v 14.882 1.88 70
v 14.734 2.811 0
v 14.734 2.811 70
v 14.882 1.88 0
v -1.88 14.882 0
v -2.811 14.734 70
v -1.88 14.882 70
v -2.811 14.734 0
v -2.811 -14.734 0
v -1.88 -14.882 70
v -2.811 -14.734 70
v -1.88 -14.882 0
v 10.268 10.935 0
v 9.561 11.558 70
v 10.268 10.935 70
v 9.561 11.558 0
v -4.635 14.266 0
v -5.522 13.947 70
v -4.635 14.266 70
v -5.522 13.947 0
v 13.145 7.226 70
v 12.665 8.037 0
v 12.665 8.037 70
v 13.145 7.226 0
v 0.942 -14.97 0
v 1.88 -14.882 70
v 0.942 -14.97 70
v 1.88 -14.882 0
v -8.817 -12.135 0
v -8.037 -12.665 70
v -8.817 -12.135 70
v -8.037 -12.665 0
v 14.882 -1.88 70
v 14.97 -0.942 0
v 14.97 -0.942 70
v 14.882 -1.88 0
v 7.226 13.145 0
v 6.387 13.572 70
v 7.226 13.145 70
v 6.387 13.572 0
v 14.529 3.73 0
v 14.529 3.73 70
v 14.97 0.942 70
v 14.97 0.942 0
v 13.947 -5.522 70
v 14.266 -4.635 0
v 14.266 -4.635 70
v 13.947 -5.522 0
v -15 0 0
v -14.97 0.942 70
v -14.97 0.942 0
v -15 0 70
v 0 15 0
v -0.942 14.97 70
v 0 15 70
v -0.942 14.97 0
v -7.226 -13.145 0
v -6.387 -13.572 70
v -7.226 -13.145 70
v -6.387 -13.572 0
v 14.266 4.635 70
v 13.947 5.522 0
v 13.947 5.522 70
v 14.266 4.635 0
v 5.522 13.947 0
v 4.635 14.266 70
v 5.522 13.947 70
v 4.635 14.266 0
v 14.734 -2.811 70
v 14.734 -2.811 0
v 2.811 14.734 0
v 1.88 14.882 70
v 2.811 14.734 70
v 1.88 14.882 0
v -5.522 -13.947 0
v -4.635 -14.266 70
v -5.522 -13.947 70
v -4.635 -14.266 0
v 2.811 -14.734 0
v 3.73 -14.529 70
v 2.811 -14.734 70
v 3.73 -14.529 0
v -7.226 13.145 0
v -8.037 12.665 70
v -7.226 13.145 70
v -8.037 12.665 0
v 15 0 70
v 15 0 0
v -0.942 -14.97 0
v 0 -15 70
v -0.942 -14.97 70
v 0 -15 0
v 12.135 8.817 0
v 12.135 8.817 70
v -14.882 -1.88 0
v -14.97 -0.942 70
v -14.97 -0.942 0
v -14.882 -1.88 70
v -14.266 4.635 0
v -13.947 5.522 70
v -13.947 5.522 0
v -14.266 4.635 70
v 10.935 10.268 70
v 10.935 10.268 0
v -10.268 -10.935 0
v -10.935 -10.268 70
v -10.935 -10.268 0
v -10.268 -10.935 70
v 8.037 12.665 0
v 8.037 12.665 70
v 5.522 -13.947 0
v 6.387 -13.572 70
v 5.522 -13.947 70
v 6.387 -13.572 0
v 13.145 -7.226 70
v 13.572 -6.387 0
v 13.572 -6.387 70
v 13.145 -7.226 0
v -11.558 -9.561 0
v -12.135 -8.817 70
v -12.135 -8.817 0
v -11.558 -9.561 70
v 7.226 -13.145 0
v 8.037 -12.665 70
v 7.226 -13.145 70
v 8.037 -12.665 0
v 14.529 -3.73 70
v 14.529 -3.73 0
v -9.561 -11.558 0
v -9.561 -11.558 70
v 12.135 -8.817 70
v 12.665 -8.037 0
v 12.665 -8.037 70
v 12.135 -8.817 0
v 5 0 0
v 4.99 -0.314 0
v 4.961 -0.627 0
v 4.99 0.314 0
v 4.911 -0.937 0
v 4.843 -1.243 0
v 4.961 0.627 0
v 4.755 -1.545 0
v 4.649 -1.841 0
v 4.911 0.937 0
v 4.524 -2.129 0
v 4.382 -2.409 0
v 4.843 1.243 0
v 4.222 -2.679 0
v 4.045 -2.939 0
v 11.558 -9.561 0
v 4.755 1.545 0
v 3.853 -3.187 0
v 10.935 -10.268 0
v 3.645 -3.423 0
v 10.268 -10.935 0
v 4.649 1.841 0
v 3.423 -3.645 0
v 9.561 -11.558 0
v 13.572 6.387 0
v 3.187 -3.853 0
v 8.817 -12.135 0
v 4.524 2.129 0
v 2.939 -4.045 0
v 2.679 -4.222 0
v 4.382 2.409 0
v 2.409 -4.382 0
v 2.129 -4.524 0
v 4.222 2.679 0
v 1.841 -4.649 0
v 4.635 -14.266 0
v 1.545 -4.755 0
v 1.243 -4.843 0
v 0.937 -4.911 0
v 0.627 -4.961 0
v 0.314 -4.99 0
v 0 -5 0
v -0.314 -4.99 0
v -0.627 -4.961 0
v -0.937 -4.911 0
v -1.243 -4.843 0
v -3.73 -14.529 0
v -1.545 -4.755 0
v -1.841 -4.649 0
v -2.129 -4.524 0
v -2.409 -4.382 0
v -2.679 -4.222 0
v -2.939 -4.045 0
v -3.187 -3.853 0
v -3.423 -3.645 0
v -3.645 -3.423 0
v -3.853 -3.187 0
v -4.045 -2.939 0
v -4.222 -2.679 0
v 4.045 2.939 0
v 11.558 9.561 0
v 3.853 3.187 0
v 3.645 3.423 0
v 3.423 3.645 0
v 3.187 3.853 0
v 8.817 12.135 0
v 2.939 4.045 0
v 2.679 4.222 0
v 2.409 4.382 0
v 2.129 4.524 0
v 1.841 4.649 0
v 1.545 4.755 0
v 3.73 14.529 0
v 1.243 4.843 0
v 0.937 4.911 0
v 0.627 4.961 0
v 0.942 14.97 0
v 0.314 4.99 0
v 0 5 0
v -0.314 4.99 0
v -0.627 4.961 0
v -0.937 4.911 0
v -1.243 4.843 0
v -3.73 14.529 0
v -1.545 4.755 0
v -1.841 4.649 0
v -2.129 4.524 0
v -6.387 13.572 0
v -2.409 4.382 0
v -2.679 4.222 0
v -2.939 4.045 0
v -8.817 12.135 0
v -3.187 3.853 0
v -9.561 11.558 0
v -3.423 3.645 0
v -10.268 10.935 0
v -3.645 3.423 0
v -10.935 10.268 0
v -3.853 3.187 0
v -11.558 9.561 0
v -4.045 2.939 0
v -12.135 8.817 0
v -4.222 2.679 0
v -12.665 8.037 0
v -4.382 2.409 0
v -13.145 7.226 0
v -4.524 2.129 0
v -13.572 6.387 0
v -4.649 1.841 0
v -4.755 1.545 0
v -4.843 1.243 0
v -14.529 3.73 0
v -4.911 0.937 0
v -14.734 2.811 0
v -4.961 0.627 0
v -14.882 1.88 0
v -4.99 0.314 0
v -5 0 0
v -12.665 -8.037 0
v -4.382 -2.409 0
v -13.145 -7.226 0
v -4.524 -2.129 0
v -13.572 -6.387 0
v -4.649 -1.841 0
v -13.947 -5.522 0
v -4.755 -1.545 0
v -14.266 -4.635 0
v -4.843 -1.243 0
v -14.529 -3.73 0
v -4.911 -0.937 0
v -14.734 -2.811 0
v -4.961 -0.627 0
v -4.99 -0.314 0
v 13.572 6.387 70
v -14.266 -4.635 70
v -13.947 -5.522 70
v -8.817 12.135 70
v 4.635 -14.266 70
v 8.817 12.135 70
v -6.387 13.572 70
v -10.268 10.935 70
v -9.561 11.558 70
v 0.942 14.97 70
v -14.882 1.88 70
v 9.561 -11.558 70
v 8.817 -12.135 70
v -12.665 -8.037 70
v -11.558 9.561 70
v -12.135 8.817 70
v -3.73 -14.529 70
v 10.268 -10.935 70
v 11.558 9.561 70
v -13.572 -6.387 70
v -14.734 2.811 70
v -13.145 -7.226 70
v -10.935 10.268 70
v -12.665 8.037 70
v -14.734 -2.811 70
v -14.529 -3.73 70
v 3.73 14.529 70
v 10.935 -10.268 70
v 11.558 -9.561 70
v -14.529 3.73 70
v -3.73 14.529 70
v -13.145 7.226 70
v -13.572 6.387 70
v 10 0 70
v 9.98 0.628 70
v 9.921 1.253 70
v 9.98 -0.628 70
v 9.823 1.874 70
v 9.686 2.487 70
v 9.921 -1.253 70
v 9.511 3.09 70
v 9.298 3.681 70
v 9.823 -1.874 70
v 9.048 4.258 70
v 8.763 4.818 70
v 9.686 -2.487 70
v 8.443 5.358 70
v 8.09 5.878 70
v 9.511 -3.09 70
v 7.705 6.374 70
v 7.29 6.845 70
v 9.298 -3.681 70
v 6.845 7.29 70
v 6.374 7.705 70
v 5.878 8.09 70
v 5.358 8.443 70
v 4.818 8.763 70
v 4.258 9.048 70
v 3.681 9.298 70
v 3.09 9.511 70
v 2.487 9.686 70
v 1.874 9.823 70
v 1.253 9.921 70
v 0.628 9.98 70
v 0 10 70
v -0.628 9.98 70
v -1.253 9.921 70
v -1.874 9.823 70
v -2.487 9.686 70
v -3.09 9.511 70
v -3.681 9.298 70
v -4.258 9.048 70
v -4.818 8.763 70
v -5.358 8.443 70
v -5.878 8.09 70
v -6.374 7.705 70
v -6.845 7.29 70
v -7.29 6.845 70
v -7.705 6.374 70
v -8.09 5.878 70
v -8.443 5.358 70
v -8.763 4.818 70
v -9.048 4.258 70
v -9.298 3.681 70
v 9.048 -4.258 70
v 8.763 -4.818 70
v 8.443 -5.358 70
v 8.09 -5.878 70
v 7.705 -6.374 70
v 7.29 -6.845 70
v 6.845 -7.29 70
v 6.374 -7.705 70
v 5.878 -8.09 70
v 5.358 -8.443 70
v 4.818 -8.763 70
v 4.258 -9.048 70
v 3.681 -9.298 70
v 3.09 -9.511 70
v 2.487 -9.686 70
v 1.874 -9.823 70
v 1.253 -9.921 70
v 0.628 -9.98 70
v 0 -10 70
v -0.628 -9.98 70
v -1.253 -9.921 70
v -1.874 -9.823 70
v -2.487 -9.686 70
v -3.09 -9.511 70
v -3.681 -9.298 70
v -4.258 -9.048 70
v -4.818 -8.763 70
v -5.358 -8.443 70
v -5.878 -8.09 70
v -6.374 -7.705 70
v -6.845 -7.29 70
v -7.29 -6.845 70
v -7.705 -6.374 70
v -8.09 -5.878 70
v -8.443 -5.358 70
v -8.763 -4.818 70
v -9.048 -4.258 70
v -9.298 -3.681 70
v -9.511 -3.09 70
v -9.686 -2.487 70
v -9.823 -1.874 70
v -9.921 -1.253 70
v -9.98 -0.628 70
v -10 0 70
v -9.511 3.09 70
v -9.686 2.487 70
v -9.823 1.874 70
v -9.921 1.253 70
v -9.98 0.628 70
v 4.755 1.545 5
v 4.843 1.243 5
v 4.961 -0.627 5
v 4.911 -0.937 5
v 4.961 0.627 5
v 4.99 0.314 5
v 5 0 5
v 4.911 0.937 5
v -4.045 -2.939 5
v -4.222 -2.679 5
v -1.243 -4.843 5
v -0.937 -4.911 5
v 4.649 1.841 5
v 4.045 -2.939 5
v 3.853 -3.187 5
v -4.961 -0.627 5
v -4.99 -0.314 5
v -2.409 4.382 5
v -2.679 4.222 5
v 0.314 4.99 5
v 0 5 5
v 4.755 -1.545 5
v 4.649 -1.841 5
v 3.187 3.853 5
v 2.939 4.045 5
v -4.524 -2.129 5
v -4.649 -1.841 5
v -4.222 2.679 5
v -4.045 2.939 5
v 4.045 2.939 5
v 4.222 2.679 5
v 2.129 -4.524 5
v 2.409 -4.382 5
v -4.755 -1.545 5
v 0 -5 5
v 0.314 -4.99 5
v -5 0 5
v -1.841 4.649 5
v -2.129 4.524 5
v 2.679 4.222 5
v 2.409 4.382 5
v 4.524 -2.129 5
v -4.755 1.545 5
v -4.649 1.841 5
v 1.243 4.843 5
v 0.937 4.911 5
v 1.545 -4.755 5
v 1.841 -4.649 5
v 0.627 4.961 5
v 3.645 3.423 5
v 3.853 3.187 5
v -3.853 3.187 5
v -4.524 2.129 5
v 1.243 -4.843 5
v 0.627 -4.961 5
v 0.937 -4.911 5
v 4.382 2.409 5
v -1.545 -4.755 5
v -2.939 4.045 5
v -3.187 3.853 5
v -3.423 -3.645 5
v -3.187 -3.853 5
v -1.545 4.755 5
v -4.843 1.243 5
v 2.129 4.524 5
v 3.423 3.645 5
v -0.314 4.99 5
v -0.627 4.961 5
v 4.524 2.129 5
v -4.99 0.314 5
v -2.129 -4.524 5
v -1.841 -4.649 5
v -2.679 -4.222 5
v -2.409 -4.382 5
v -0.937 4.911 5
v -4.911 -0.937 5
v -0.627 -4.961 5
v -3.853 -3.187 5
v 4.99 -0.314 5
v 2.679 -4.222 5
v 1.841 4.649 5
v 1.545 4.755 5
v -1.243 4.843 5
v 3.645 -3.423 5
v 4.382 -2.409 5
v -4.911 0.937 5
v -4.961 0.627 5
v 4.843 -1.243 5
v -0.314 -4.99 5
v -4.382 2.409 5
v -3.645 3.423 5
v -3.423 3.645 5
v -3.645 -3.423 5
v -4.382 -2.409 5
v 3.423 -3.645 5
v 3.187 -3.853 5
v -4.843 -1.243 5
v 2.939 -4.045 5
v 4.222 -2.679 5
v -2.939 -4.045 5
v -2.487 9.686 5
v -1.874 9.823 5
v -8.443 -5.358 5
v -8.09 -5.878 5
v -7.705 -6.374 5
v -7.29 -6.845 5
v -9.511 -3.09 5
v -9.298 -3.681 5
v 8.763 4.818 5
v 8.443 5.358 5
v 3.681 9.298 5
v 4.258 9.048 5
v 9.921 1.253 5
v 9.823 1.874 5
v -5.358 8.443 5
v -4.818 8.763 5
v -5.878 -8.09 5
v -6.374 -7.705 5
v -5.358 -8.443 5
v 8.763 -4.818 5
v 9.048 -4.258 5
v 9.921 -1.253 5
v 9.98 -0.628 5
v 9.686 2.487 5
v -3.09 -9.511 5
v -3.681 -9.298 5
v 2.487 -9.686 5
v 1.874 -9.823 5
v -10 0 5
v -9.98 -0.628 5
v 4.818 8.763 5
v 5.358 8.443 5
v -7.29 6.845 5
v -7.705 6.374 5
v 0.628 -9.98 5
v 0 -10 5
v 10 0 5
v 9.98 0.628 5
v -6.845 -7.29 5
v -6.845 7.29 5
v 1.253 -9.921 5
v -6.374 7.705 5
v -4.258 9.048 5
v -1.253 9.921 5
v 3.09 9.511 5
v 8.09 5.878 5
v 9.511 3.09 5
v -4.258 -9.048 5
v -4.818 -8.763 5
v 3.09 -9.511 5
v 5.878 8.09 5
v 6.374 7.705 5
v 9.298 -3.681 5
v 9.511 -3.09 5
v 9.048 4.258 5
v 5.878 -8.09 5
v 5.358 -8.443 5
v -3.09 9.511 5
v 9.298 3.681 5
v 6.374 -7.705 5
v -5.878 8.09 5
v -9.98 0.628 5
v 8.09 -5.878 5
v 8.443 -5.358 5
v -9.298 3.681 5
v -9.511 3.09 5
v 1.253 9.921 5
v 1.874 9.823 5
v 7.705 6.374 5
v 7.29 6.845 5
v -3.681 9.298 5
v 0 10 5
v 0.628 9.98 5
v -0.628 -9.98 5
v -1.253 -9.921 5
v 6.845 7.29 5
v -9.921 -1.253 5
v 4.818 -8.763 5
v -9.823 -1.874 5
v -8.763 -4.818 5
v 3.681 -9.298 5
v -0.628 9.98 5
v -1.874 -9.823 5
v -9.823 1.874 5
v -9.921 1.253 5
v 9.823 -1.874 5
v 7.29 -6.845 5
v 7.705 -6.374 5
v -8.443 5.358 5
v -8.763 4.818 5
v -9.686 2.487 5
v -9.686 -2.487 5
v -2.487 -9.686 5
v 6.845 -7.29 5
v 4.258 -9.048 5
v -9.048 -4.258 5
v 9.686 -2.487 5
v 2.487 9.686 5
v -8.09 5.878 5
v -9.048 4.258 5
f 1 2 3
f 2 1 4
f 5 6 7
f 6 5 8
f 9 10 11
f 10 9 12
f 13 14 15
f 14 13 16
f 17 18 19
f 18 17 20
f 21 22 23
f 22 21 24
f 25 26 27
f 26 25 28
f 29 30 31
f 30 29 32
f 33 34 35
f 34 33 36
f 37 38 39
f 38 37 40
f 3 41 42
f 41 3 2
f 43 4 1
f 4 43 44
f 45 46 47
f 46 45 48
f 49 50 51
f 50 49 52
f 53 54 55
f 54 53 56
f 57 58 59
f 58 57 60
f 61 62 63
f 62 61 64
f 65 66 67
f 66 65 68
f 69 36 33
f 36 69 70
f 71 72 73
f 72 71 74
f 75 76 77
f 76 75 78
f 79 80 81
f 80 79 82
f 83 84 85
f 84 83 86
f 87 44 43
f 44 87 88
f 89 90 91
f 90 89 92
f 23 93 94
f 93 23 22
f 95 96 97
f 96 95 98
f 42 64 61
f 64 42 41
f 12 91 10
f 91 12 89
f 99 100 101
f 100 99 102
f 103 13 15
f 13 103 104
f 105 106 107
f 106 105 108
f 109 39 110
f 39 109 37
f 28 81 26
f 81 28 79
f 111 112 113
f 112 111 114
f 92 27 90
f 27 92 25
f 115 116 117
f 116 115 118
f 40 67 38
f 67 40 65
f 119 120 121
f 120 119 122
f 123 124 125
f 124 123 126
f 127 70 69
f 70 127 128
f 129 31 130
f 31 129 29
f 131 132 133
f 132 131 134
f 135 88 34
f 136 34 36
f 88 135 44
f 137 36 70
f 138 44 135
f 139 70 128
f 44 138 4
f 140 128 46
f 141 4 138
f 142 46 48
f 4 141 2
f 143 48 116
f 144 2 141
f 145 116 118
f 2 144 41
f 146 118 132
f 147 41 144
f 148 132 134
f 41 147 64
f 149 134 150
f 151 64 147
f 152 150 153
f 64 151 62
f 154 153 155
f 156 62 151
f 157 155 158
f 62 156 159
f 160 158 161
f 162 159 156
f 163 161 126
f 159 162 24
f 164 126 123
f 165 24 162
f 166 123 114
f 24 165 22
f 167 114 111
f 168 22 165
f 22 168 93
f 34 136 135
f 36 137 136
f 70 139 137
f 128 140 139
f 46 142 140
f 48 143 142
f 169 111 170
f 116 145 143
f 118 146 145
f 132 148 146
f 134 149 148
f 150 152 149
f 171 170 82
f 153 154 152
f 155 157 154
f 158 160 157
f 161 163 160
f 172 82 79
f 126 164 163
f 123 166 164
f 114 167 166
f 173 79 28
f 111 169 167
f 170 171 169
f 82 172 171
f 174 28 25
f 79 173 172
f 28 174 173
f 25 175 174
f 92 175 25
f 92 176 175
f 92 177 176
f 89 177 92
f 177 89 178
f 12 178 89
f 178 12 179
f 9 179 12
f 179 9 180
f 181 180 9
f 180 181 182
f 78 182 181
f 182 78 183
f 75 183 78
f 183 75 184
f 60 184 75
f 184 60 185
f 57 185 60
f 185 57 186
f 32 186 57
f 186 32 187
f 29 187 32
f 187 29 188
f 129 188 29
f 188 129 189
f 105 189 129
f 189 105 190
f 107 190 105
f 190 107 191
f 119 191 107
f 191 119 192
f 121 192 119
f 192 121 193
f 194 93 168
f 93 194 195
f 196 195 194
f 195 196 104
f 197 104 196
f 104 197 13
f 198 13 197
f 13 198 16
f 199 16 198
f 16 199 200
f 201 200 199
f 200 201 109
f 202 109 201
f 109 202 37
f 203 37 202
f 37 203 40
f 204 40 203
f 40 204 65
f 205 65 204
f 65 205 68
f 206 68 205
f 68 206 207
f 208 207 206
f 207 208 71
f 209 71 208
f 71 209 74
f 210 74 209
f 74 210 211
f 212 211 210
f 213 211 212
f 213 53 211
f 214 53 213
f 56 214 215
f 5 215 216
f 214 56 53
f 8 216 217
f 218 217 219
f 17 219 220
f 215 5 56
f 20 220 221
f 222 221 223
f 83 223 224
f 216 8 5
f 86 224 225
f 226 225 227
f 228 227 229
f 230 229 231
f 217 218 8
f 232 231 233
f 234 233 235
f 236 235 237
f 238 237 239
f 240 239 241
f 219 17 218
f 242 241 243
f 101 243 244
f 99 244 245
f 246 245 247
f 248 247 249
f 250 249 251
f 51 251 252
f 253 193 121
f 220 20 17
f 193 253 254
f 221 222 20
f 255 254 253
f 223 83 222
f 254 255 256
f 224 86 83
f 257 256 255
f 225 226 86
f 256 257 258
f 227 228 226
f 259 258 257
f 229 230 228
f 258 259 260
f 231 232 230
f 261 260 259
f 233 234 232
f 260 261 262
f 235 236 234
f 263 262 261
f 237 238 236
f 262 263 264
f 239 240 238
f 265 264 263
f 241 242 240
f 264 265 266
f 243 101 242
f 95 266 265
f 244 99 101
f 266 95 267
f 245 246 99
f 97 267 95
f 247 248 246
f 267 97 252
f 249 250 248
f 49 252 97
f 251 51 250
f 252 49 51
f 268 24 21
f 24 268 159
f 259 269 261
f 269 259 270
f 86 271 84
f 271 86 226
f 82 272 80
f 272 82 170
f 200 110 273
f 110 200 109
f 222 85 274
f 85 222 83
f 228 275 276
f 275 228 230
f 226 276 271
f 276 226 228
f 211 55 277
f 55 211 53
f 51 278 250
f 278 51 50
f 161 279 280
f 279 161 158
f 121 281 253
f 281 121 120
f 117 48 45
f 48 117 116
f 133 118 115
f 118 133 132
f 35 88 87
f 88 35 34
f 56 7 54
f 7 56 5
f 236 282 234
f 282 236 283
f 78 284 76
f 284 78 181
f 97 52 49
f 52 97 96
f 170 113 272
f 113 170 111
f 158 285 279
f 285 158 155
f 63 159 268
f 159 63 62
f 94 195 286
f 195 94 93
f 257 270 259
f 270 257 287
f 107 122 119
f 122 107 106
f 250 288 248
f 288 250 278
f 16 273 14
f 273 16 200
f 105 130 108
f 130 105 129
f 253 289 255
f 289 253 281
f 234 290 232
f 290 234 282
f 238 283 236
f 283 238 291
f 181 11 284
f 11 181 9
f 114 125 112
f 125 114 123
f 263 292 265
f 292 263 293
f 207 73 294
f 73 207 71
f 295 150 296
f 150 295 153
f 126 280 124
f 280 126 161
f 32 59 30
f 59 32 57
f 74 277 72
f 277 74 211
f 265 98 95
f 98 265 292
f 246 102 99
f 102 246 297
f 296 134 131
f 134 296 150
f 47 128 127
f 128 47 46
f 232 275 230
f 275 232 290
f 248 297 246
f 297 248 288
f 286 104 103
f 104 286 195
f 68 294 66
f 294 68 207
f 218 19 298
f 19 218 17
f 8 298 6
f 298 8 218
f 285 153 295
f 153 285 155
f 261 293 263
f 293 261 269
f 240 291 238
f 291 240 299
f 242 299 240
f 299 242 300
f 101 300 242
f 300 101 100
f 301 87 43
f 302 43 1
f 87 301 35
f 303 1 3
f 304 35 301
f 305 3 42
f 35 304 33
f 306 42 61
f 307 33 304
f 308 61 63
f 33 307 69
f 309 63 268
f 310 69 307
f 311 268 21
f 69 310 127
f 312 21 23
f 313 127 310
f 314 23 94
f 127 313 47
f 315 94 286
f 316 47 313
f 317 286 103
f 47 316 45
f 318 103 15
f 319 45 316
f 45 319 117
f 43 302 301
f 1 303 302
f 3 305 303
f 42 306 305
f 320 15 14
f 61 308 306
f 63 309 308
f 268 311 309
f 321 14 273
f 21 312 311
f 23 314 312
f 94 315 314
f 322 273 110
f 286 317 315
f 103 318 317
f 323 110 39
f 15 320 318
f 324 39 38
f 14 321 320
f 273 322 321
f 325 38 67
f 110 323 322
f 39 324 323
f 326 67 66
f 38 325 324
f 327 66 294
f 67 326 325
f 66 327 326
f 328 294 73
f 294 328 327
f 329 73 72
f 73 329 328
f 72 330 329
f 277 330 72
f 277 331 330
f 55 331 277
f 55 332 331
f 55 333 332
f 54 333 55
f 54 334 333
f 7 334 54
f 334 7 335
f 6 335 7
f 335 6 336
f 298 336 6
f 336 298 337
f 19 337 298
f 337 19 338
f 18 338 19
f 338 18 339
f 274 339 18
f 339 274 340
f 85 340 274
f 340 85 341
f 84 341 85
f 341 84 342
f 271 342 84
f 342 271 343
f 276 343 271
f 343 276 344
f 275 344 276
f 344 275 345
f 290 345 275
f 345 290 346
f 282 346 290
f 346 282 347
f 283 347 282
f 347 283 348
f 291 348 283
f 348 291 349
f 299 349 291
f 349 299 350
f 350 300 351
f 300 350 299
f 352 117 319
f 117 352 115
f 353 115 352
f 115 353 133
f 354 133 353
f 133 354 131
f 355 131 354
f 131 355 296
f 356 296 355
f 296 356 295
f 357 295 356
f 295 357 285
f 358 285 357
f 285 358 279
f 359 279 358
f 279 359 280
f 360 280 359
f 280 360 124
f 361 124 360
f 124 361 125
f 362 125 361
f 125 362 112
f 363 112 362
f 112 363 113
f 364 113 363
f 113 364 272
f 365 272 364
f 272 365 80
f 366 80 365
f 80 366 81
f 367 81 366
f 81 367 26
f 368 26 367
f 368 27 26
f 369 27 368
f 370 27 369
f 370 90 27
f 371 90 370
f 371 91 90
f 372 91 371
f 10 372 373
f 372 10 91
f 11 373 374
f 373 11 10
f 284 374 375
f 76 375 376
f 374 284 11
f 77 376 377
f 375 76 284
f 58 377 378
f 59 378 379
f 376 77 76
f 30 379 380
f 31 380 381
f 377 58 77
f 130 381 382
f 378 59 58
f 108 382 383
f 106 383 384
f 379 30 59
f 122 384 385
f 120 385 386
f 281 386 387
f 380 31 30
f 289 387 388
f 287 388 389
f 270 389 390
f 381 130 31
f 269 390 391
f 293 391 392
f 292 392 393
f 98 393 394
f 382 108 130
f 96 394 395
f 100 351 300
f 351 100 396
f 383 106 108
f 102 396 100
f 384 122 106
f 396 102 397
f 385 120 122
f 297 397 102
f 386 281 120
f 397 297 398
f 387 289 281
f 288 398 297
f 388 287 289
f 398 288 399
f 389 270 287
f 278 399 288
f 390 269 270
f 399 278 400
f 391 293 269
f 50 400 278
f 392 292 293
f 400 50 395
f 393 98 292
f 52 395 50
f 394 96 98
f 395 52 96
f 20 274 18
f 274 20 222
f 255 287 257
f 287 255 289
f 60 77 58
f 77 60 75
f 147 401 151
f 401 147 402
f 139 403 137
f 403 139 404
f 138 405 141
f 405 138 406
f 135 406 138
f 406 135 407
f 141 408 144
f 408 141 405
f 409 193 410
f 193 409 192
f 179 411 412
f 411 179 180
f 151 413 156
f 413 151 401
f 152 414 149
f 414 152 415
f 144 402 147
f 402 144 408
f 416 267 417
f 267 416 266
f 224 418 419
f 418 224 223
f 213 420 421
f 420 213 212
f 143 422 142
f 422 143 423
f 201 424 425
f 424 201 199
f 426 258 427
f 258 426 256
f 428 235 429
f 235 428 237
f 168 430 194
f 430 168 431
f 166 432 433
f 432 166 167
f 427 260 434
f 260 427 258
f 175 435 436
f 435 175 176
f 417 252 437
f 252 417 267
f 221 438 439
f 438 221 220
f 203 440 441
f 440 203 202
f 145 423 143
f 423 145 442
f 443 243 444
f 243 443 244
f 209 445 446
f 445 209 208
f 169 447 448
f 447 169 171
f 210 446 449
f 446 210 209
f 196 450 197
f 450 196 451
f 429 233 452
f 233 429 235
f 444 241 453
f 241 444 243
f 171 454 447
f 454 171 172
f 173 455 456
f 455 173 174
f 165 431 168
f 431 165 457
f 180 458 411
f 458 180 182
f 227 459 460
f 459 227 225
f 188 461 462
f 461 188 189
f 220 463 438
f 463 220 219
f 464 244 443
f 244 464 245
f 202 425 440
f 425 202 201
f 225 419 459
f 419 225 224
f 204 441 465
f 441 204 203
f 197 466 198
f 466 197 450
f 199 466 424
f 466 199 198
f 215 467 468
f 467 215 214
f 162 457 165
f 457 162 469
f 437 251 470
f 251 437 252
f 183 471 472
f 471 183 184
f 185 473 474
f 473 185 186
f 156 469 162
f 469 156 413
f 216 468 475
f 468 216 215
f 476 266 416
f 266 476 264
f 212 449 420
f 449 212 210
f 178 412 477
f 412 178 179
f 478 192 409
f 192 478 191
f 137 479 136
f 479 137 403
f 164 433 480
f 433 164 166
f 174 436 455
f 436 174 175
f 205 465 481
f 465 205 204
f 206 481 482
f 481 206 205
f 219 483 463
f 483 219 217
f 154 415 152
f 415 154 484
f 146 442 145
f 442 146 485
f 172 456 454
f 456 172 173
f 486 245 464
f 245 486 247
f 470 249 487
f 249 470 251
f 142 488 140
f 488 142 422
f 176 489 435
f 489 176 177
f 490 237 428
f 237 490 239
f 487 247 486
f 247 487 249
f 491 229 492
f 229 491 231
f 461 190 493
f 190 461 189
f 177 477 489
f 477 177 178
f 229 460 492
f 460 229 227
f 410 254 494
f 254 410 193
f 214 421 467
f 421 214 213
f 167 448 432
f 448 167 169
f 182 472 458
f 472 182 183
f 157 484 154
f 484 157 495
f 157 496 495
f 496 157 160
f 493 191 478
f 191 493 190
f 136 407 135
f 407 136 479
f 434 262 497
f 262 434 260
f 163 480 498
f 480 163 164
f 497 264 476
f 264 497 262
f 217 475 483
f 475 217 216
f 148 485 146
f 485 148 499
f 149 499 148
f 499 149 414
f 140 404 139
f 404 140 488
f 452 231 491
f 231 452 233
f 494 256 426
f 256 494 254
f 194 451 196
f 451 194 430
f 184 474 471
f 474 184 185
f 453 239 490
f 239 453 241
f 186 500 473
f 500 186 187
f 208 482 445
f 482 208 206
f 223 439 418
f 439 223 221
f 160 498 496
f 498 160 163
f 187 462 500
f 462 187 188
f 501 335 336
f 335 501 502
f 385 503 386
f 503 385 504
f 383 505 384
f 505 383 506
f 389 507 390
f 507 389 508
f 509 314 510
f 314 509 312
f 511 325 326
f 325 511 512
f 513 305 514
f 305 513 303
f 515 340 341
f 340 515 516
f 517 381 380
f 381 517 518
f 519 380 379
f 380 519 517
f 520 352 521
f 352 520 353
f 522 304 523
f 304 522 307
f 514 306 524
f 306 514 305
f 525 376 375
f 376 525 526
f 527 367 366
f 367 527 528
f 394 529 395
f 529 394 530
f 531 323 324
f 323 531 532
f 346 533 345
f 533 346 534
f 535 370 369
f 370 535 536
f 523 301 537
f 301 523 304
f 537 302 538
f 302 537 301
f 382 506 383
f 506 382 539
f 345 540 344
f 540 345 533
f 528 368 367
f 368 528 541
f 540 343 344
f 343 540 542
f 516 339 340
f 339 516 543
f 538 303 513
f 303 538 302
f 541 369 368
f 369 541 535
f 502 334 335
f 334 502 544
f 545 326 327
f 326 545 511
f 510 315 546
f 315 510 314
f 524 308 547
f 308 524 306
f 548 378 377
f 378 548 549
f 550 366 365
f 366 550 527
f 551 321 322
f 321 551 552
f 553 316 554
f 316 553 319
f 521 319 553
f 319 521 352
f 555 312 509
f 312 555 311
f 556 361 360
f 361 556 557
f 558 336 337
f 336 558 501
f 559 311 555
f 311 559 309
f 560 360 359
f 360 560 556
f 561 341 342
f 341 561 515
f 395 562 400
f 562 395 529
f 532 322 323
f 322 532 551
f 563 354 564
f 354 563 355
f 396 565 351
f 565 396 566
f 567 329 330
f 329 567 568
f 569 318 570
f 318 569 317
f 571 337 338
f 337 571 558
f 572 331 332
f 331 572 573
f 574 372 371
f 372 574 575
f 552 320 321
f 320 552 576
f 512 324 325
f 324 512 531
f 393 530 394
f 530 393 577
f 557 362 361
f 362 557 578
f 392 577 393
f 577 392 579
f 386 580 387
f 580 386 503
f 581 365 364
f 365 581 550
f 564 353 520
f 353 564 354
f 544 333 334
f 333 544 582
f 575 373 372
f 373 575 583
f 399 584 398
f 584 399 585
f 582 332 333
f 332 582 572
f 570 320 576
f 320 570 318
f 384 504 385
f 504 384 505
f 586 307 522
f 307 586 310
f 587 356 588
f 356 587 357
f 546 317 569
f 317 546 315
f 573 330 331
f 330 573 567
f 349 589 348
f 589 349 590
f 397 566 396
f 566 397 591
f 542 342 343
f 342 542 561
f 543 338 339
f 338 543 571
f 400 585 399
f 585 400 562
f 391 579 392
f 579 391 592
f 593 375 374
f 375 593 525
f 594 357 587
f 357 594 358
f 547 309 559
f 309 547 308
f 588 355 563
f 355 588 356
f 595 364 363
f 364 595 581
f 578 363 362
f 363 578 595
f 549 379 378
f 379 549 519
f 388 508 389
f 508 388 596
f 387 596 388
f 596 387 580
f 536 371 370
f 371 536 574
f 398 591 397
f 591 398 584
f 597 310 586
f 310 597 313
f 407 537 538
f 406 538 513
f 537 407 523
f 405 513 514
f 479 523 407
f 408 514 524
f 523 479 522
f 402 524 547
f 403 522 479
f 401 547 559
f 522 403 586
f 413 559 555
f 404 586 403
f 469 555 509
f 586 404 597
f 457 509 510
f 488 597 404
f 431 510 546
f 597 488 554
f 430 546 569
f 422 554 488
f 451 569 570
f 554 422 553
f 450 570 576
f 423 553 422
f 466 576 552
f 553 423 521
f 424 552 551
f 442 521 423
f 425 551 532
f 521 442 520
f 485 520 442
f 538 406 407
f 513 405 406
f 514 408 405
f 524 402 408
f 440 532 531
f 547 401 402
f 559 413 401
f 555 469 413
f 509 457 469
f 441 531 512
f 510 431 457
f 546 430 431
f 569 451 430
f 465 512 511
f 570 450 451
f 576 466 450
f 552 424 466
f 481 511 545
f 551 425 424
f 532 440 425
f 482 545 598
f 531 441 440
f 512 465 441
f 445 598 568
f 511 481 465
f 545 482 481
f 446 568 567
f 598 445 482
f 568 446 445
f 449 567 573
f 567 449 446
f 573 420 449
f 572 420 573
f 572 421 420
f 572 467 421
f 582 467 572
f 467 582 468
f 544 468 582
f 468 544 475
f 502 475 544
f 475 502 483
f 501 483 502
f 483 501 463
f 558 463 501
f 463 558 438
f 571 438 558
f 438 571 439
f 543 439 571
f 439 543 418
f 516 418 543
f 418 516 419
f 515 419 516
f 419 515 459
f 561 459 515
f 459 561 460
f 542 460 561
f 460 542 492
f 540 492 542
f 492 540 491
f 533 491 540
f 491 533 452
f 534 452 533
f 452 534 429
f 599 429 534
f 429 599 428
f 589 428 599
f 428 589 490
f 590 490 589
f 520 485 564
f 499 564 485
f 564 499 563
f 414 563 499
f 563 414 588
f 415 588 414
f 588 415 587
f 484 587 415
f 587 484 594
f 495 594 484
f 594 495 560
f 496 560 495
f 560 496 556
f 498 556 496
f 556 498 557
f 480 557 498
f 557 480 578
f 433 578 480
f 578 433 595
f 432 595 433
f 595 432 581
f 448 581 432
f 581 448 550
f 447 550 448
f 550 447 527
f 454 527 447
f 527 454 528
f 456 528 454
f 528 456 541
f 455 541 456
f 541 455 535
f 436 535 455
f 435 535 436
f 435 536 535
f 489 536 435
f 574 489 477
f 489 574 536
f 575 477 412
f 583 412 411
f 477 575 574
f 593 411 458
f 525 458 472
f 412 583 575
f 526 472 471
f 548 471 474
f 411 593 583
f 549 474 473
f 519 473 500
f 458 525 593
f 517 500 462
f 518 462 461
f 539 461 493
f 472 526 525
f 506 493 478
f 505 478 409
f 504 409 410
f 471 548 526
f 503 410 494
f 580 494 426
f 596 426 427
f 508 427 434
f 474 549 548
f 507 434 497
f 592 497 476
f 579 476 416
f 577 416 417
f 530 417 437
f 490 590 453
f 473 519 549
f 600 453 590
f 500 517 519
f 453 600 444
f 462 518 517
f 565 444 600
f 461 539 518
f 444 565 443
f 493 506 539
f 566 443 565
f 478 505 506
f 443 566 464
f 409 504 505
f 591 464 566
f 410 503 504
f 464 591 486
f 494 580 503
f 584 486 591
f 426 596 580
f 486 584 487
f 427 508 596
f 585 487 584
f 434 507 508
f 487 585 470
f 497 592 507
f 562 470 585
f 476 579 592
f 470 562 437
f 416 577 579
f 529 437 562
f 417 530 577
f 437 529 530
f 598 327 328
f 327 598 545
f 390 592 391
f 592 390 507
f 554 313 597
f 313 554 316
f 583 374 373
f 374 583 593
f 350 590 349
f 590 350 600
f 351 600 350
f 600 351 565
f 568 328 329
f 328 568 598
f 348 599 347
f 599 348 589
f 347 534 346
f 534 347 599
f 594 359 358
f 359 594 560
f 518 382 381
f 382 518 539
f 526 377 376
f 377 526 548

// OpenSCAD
height = 70;
outer_rad = 30 / 2;
inner_rad = 20 / 2;
screw_rad = 5;

difference()
{
    cylinder(h = height, r = outer_rad, $fn = 100);
    
    translate([0, 0, 0])
    {
        cylinder(h = height, r = screw_rad, $fn = 100);
    }
    
    translate([0, 0, 5])
    {
        cylinder(h = height, r = inner_rad, $fn = 100);
    }
}
